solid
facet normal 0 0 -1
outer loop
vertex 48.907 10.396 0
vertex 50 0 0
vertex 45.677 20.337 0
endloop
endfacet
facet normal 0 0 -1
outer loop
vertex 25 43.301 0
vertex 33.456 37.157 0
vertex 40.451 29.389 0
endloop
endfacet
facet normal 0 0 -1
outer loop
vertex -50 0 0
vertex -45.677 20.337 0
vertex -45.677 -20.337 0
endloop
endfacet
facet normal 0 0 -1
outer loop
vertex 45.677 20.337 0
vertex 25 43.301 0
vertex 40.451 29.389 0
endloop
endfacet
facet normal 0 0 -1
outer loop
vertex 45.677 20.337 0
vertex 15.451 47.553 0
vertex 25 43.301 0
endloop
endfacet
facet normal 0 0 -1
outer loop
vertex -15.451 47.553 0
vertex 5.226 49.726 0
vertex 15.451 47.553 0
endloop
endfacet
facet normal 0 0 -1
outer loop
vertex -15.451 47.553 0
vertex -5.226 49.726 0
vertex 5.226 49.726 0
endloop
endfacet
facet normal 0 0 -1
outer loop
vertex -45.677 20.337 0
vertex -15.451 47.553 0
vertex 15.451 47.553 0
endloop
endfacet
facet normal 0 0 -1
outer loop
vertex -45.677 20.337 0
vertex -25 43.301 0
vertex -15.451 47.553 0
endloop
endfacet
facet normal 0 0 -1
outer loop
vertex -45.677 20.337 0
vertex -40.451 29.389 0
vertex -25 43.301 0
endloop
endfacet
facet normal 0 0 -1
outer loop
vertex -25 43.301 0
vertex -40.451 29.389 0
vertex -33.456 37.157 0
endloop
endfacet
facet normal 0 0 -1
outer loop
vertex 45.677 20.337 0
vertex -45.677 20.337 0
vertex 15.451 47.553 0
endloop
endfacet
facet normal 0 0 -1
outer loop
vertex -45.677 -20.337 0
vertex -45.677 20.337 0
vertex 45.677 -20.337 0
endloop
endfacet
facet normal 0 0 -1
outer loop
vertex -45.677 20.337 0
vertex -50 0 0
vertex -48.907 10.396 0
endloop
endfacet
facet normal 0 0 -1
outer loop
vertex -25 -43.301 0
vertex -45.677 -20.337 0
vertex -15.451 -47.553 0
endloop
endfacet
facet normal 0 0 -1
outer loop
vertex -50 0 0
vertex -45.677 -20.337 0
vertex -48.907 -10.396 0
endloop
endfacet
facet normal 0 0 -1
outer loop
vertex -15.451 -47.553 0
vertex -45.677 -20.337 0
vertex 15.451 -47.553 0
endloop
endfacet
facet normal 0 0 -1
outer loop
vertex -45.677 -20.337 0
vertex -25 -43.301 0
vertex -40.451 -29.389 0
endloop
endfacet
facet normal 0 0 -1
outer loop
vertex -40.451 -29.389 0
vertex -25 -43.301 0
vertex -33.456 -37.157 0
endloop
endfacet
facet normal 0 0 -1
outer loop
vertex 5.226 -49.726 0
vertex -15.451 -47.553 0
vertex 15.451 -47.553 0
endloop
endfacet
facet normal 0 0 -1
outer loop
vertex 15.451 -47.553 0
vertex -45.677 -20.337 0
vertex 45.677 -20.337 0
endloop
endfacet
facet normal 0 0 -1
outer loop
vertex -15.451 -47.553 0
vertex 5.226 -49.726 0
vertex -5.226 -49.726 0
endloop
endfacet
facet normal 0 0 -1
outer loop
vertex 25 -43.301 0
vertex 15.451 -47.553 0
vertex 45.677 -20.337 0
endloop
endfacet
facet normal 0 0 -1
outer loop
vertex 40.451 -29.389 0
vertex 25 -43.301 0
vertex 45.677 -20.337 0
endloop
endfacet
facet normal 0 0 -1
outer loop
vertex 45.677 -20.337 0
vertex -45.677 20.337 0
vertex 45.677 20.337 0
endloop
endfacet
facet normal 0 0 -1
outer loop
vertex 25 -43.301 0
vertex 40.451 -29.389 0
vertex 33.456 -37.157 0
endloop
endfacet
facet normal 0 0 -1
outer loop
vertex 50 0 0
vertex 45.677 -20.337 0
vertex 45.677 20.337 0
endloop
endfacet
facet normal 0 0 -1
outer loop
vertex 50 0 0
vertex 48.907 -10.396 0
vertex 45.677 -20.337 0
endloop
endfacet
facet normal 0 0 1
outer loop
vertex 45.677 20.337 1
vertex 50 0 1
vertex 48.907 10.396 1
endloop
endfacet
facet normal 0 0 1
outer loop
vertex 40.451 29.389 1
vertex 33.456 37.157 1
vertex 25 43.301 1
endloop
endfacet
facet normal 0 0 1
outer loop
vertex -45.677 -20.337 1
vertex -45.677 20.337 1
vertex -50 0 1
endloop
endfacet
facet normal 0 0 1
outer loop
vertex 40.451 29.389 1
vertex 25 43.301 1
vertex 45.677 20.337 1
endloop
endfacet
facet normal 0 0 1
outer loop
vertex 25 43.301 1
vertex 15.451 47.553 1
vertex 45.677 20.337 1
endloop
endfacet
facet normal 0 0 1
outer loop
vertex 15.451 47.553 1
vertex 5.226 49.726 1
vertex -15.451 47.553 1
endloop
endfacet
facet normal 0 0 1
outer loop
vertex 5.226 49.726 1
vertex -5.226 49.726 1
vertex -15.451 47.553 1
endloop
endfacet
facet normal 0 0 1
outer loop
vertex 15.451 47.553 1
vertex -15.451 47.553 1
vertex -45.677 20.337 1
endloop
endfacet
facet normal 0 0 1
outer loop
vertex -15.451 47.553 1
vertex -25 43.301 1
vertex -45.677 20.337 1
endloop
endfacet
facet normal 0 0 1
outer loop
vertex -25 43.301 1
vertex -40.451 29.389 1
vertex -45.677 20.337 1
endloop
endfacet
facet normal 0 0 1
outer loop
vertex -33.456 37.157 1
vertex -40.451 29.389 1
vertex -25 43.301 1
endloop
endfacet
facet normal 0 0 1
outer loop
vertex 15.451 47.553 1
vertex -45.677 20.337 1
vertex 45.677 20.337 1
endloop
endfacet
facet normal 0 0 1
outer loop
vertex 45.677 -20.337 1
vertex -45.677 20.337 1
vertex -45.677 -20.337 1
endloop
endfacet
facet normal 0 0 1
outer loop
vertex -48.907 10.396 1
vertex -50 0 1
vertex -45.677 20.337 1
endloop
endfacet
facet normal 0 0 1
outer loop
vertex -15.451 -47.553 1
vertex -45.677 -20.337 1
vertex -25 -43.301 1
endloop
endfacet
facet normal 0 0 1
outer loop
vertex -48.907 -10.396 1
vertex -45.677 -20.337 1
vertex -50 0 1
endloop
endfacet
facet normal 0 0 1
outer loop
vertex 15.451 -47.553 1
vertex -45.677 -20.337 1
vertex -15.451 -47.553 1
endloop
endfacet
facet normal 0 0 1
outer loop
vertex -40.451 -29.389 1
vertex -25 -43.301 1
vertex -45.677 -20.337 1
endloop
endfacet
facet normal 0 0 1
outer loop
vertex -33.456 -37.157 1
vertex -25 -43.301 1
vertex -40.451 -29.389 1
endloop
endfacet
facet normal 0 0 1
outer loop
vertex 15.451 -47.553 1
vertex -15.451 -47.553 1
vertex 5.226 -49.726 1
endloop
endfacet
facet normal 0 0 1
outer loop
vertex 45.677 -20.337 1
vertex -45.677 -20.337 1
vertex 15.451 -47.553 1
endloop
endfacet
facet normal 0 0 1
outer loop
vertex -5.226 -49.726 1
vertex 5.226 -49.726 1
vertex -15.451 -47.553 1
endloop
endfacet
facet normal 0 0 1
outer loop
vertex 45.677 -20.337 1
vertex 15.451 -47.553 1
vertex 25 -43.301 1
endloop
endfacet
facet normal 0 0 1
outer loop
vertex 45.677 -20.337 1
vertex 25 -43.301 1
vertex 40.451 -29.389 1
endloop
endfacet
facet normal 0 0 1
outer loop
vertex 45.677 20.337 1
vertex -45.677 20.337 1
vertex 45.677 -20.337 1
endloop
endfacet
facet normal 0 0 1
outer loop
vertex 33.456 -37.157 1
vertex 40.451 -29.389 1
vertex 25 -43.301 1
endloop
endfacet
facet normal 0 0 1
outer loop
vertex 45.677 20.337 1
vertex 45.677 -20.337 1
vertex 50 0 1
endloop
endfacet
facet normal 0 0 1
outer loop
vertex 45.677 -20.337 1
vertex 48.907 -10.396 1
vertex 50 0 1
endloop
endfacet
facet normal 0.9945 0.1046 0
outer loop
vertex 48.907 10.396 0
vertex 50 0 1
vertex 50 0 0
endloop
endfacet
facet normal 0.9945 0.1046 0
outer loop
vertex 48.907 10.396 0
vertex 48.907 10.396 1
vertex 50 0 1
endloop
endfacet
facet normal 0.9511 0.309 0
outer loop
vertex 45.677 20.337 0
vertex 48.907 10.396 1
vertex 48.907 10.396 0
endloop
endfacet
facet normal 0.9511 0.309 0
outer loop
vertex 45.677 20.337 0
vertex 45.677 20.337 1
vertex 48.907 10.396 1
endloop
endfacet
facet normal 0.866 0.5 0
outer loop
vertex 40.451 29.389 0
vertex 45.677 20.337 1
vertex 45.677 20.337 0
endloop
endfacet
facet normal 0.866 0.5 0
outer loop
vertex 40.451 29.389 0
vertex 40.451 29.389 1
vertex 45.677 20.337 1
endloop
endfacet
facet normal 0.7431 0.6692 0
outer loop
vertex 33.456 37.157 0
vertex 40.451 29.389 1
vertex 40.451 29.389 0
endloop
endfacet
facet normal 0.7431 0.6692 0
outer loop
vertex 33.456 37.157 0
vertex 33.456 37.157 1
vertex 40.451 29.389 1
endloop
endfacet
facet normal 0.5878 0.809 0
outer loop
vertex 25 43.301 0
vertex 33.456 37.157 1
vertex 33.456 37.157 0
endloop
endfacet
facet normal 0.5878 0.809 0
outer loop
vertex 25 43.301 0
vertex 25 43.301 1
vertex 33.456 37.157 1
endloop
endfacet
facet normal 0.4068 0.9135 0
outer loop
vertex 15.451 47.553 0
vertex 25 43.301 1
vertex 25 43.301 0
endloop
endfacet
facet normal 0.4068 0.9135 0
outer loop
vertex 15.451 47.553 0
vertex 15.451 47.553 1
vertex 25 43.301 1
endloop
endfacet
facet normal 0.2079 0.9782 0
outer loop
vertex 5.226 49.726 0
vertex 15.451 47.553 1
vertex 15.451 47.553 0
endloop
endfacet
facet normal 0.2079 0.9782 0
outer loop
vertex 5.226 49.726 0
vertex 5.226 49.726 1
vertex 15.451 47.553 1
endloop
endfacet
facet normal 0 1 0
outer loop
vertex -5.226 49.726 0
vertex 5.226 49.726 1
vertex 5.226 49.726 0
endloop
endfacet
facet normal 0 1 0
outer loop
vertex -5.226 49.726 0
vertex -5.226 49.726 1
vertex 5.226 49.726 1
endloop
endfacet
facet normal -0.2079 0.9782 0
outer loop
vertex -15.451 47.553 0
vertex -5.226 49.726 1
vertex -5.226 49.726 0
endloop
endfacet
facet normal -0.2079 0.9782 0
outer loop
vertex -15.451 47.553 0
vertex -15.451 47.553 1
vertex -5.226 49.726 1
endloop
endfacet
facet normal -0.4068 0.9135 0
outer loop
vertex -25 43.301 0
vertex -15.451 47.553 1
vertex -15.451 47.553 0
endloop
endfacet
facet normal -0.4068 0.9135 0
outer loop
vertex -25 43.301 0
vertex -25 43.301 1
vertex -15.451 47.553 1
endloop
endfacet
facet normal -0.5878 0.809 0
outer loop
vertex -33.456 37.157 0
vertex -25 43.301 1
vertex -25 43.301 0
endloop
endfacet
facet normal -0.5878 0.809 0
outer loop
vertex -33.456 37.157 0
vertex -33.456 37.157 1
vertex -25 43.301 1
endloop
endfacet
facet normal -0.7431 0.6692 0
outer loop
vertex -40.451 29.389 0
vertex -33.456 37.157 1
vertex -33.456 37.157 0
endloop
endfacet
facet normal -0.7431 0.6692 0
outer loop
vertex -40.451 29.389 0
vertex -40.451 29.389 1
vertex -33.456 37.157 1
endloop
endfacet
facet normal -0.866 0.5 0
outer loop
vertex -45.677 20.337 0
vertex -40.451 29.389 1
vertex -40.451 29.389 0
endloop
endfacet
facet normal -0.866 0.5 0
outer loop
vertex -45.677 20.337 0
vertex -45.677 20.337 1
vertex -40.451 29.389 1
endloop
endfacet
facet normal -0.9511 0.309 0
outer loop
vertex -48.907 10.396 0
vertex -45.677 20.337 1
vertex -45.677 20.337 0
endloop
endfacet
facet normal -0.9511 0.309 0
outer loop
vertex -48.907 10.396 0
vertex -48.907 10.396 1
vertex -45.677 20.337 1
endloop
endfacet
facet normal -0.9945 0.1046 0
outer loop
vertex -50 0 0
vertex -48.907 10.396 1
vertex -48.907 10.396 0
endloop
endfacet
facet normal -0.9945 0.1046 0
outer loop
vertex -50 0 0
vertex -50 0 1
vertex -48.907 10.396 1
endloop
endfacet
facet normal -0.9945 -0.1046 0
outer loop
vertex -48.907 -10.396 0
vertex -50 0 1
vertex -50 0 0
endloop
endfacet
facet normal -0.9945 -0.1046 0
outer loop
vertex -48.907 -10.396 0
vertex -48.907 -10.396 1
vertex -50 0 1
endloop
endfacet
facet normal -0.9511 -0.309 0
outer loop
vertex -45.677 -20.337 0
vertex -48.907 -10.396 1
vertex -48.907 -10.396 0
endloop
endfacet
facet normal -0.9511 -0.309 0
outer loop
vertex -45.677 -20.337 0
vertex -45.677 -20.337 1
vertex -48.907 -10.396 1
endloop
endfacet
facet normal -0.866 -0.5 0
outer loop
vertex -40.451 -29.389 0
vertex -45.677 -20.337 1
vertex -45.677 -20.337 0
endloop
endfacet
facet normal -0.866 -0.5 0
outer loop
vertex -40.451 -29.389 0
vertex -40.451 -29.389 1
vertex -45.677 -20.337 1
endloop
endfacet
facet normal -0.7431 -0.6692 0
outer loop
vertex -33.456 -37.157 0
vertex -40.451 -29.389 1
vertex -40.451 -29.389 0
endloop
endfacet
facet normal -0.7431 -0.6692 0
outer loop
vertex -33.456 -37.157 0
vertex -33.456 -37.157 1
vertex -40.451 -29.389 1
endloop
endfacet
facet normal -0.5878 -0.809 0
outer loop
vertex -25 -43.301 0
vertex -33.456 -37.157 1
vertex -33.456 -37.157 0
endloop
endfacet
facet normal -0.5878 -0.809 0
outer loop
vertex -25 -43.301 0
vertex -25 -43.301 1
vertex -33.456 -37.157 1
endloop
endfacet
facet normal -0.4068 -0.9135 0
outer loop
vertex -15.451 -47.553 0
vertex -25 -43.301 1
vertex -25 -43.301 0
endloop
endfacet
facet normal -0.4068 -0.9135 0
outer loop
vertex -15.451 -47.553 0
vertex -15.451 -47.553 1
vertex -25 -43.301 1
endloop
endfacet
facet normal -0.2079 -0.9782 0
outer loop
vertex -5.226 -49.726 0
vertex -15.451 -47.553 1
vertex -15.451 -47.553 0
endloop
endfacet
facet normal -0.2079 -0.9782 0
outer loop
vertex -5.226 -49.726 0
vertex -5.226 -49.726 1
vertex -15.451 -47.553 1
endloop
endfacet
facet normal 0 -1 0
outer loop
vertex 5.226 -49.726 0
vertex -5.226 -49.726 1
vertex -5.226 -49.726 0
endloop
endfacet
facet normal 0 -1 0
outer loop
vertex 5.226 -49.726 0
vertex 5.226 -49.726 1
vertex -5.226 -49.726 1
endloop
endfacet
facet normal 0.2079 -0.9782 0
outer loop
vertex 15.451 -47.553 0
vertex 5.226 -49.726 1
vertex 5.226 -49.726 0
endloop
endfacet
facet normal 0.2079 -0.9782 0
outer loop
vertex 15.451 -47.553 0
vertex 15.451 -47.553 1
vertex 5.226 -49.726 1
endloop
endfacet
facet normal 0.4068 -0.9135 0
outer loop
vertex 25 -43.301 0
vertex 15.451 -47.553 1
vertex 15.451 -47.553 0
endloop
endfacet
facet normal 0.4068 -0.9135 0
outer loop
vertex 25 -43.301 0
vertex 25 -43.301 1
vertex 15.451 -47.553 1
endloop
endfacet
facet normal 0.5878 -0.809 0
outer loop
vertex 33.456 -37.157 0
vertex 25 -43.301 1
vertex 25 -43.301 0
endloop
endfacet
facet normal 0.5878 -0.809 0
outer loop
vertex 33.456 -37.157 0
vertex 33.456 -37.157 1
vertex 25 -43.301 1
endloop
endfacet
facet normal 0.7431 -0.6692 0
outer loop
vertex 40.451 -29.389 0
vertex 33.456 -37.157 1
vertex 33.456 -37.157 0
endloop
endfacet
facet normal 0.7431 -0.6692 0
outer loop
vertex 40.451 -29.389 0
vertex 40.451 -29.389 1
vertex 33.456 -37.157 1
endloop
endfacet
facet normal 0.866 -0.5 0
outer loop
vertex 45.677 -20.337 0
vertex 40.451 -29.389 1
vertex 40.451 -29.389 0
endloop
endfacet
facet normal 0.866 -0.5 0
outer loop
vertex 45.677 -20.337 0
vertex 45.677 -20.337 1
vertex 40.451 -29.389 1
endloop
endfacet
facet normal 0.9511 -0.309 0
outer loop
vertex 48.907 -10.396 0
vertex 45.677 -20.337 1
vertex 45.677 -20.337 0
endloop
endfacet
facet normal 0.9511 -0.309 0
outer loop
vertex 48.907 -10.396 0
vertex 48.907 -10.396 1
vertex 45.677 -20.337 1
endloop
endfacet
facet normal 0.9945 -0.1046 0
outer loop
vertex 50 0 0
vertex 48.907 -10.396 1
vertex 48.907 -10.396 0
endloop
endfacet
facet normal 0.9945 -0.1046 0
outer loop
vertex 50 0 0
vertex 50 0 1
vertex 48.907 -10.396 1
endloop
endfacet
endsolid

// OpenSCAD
// Sphere Head - OpenSCAD

// Parameters
r = 50;  // Radius of the sphere
segments = 64; // Number of segments for smoother curves
rings = 24;  // Resolution for rings

// Function to create a sphere with a specified radius and segments
module sphere(r, segments, rings) {
    linear_extrude(height = 1) {
        circle(r = r);
    }
}

// Create the sphere head
sphere(r = r, segments = segments, rings = rings);
